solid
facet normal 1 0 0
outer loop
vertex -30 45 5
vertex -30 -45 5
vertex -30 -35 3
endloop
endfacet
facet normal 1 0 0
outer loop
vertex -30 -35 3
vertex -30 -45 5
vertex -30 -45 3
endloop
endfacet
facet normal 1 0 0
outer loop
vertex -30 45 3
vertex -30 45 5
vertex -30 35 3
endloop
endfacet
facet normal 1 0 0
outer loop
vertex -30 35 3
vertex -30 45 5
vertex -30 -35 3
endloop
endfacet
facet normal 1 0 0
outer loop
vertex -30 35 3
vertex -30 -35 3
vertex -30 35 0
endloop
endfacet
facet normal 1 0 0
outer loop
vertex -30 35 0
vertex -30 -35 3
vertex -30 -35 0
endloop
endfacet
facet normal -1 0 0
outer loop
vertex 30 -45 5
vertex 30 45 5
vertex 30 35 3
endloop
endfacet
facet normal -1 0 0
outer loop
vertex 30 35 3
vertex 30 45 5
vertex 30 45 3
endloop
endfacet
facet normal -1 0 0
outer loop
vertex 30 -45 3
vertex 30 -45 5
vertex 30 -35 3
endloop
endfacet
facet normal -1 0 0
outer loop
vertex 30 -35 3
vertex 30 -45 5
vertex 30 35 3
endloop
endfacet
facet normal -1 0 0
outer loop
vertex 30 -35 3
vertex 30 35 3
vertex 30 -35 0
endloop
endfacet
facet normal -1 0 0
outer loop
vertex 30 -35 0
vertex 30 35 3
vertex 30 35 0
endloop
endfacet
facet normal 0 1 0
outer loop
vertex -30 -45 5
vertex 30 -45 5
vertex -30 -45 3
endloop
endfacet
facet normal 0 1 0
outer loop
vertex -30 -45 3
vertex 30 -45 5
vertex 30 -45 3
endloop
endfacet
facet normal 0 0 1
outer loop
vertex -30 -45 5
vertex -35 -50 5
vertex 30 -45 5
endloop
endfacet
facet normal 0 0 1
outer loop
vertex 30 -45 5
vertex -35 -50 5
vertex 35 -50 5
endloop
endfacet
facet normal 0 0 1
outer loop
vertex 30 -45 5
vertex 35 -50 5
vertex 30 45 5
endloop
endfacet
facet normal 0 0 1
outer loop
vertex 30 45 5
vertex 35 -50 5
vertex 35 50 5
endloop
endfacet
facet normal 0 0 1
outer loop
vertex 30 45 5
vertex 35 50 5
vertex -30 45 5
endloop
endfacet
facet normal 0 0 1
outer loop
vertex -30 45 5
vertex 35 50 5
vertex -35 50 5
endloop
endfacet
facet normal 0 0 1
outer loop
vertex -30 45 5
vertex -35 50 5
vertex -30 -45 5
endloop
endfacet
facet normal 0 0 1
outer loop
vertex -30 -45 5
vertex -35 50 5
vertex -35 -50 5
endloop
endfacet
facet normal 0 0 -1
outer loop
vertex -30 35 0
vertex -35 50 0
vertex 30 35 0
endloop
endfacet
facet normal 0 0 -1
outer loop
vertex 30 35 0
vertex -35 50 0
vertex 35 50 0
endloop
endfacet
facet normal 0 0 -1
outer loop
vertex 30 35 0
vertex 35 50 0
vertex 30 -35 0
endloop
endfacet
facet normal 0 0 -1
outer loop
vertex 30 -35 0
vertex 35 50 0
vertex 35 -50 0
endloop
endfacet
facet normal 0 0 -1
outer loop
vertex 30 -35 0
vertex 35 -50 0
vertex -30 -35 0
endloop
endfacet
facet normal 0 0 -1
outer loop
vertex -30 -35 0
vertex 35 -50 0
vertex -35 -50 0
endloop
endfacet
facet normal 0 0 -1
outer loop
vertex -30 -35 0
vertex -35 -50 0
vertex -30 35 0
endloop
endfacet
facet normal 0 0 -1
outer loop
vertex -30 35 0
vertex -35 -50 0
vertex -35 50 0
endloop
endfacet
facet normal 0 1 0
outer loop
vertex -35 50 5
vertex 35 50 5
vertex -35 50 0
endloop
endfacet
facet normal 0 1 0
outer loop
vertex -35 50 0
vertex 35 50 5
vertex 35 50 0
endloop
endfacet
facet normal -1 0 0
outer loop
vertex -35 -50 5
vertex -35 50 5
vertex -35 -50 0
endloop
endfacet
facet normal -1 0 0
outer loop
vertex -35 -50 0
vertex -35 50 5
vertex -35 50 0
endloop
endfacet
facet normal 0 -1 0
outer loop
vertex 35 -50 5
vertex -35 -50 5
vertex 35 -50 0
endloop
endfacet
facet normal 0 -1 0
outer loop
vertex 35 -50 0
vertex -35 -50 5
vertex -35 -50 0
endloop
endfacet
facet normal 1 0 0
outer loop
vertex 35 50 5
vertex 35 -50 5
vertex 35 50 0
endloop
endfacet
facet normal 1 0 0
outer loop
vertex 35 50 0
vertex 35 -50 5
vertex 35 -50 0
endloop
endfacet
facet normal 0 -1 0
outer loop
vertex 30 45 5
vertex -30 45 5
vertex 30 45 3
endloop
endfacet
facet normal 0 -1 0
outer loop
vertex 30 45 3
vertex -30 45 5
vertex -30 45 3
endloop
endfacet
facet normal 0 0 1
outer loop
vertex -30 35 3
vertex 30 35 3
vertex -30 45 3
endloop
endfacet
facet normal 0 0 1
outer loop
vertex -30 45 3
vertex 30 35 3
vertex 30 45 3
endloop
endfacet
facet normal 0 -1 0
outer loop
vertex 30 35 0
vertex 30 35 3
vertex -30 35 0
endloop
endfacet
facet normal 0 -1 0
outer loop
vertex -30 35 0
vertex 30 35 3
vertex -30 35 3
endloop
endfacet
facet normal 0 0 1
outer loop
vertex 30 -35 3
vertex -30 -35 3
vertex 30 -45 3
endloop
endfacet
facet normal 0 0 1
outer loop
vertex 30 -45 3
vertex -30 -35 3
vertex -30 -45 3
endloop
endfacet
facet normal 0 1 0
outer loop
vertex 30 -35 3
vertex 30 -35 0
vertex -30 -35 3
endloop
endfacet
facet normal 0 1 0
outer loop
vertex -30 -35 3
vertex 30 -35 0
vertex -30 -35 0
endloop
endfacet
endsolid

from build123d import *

# Parameters (mm, degrees)
SKETCH1_W           = 100
SKETCH1_H           = 70
BOSS_EXTRUDE1_DEPTH = 5
SKETCH2_W           = 60
SKETCH2_H           = 90
CUT_EXTRUDE1_DEPTH  = 62.23724357
SKETCH4_W           = 60
SKETCH4_H           = 3
BOSS_EXTRUDE2_DEPTH = 10
SKETCH5_W           = 60
SKETCH5_H           = 3
BOSS_EXTRUDE3_DEPTH = 10


with BuildPart() as part:
    # Sketch1 → Boss-Extrude1 (new body)
    with BuildSketch(Plane(origin=(0, 0, 0), x_dir=(0, 1, 0), z_dir=(0, 0, 1))):
        Rectangle(SKETCH1_W, SKETCH1_H)
    extrude(amount=BOSS_EXTRUDE1_DEPTH)

    # Sketch2 → Cut-Extrude1 (cut, through all)
    with BuildSketch(Plane.XY.offset(5)):
        Rectangle(SKETCH2_W, SKETCH2_H)
    extrude(amount=-CUT_EXTRUDE1_DEPTH, mode=Mode.SUBTRACT)

    # Sketch4 → Boss-Extrude2 (add)
    with BuildSketch(Plane.XZ.offset(-45)):
        with Locations((0, 1.5)):
            Rectangle(SKETCH4_W, SKETCH4_H)
    extrude(amount=BOSS_EXTRUDE2_DEPTH)

    # Sketch5 → Boss-Extrude3 (add)
    with BuildSketch(Plane(origin=(-45, -45, 0), x_dir=(1, 0, 0), z_dir=(0, 1, 0))):
        with Locations((45, -1.5)):
            Rectangle(SKETCH5_W, SKETCH5_H)
    extrude(amount=BOSS_EXTRUDE3_DEPTH)


solid = part.part
